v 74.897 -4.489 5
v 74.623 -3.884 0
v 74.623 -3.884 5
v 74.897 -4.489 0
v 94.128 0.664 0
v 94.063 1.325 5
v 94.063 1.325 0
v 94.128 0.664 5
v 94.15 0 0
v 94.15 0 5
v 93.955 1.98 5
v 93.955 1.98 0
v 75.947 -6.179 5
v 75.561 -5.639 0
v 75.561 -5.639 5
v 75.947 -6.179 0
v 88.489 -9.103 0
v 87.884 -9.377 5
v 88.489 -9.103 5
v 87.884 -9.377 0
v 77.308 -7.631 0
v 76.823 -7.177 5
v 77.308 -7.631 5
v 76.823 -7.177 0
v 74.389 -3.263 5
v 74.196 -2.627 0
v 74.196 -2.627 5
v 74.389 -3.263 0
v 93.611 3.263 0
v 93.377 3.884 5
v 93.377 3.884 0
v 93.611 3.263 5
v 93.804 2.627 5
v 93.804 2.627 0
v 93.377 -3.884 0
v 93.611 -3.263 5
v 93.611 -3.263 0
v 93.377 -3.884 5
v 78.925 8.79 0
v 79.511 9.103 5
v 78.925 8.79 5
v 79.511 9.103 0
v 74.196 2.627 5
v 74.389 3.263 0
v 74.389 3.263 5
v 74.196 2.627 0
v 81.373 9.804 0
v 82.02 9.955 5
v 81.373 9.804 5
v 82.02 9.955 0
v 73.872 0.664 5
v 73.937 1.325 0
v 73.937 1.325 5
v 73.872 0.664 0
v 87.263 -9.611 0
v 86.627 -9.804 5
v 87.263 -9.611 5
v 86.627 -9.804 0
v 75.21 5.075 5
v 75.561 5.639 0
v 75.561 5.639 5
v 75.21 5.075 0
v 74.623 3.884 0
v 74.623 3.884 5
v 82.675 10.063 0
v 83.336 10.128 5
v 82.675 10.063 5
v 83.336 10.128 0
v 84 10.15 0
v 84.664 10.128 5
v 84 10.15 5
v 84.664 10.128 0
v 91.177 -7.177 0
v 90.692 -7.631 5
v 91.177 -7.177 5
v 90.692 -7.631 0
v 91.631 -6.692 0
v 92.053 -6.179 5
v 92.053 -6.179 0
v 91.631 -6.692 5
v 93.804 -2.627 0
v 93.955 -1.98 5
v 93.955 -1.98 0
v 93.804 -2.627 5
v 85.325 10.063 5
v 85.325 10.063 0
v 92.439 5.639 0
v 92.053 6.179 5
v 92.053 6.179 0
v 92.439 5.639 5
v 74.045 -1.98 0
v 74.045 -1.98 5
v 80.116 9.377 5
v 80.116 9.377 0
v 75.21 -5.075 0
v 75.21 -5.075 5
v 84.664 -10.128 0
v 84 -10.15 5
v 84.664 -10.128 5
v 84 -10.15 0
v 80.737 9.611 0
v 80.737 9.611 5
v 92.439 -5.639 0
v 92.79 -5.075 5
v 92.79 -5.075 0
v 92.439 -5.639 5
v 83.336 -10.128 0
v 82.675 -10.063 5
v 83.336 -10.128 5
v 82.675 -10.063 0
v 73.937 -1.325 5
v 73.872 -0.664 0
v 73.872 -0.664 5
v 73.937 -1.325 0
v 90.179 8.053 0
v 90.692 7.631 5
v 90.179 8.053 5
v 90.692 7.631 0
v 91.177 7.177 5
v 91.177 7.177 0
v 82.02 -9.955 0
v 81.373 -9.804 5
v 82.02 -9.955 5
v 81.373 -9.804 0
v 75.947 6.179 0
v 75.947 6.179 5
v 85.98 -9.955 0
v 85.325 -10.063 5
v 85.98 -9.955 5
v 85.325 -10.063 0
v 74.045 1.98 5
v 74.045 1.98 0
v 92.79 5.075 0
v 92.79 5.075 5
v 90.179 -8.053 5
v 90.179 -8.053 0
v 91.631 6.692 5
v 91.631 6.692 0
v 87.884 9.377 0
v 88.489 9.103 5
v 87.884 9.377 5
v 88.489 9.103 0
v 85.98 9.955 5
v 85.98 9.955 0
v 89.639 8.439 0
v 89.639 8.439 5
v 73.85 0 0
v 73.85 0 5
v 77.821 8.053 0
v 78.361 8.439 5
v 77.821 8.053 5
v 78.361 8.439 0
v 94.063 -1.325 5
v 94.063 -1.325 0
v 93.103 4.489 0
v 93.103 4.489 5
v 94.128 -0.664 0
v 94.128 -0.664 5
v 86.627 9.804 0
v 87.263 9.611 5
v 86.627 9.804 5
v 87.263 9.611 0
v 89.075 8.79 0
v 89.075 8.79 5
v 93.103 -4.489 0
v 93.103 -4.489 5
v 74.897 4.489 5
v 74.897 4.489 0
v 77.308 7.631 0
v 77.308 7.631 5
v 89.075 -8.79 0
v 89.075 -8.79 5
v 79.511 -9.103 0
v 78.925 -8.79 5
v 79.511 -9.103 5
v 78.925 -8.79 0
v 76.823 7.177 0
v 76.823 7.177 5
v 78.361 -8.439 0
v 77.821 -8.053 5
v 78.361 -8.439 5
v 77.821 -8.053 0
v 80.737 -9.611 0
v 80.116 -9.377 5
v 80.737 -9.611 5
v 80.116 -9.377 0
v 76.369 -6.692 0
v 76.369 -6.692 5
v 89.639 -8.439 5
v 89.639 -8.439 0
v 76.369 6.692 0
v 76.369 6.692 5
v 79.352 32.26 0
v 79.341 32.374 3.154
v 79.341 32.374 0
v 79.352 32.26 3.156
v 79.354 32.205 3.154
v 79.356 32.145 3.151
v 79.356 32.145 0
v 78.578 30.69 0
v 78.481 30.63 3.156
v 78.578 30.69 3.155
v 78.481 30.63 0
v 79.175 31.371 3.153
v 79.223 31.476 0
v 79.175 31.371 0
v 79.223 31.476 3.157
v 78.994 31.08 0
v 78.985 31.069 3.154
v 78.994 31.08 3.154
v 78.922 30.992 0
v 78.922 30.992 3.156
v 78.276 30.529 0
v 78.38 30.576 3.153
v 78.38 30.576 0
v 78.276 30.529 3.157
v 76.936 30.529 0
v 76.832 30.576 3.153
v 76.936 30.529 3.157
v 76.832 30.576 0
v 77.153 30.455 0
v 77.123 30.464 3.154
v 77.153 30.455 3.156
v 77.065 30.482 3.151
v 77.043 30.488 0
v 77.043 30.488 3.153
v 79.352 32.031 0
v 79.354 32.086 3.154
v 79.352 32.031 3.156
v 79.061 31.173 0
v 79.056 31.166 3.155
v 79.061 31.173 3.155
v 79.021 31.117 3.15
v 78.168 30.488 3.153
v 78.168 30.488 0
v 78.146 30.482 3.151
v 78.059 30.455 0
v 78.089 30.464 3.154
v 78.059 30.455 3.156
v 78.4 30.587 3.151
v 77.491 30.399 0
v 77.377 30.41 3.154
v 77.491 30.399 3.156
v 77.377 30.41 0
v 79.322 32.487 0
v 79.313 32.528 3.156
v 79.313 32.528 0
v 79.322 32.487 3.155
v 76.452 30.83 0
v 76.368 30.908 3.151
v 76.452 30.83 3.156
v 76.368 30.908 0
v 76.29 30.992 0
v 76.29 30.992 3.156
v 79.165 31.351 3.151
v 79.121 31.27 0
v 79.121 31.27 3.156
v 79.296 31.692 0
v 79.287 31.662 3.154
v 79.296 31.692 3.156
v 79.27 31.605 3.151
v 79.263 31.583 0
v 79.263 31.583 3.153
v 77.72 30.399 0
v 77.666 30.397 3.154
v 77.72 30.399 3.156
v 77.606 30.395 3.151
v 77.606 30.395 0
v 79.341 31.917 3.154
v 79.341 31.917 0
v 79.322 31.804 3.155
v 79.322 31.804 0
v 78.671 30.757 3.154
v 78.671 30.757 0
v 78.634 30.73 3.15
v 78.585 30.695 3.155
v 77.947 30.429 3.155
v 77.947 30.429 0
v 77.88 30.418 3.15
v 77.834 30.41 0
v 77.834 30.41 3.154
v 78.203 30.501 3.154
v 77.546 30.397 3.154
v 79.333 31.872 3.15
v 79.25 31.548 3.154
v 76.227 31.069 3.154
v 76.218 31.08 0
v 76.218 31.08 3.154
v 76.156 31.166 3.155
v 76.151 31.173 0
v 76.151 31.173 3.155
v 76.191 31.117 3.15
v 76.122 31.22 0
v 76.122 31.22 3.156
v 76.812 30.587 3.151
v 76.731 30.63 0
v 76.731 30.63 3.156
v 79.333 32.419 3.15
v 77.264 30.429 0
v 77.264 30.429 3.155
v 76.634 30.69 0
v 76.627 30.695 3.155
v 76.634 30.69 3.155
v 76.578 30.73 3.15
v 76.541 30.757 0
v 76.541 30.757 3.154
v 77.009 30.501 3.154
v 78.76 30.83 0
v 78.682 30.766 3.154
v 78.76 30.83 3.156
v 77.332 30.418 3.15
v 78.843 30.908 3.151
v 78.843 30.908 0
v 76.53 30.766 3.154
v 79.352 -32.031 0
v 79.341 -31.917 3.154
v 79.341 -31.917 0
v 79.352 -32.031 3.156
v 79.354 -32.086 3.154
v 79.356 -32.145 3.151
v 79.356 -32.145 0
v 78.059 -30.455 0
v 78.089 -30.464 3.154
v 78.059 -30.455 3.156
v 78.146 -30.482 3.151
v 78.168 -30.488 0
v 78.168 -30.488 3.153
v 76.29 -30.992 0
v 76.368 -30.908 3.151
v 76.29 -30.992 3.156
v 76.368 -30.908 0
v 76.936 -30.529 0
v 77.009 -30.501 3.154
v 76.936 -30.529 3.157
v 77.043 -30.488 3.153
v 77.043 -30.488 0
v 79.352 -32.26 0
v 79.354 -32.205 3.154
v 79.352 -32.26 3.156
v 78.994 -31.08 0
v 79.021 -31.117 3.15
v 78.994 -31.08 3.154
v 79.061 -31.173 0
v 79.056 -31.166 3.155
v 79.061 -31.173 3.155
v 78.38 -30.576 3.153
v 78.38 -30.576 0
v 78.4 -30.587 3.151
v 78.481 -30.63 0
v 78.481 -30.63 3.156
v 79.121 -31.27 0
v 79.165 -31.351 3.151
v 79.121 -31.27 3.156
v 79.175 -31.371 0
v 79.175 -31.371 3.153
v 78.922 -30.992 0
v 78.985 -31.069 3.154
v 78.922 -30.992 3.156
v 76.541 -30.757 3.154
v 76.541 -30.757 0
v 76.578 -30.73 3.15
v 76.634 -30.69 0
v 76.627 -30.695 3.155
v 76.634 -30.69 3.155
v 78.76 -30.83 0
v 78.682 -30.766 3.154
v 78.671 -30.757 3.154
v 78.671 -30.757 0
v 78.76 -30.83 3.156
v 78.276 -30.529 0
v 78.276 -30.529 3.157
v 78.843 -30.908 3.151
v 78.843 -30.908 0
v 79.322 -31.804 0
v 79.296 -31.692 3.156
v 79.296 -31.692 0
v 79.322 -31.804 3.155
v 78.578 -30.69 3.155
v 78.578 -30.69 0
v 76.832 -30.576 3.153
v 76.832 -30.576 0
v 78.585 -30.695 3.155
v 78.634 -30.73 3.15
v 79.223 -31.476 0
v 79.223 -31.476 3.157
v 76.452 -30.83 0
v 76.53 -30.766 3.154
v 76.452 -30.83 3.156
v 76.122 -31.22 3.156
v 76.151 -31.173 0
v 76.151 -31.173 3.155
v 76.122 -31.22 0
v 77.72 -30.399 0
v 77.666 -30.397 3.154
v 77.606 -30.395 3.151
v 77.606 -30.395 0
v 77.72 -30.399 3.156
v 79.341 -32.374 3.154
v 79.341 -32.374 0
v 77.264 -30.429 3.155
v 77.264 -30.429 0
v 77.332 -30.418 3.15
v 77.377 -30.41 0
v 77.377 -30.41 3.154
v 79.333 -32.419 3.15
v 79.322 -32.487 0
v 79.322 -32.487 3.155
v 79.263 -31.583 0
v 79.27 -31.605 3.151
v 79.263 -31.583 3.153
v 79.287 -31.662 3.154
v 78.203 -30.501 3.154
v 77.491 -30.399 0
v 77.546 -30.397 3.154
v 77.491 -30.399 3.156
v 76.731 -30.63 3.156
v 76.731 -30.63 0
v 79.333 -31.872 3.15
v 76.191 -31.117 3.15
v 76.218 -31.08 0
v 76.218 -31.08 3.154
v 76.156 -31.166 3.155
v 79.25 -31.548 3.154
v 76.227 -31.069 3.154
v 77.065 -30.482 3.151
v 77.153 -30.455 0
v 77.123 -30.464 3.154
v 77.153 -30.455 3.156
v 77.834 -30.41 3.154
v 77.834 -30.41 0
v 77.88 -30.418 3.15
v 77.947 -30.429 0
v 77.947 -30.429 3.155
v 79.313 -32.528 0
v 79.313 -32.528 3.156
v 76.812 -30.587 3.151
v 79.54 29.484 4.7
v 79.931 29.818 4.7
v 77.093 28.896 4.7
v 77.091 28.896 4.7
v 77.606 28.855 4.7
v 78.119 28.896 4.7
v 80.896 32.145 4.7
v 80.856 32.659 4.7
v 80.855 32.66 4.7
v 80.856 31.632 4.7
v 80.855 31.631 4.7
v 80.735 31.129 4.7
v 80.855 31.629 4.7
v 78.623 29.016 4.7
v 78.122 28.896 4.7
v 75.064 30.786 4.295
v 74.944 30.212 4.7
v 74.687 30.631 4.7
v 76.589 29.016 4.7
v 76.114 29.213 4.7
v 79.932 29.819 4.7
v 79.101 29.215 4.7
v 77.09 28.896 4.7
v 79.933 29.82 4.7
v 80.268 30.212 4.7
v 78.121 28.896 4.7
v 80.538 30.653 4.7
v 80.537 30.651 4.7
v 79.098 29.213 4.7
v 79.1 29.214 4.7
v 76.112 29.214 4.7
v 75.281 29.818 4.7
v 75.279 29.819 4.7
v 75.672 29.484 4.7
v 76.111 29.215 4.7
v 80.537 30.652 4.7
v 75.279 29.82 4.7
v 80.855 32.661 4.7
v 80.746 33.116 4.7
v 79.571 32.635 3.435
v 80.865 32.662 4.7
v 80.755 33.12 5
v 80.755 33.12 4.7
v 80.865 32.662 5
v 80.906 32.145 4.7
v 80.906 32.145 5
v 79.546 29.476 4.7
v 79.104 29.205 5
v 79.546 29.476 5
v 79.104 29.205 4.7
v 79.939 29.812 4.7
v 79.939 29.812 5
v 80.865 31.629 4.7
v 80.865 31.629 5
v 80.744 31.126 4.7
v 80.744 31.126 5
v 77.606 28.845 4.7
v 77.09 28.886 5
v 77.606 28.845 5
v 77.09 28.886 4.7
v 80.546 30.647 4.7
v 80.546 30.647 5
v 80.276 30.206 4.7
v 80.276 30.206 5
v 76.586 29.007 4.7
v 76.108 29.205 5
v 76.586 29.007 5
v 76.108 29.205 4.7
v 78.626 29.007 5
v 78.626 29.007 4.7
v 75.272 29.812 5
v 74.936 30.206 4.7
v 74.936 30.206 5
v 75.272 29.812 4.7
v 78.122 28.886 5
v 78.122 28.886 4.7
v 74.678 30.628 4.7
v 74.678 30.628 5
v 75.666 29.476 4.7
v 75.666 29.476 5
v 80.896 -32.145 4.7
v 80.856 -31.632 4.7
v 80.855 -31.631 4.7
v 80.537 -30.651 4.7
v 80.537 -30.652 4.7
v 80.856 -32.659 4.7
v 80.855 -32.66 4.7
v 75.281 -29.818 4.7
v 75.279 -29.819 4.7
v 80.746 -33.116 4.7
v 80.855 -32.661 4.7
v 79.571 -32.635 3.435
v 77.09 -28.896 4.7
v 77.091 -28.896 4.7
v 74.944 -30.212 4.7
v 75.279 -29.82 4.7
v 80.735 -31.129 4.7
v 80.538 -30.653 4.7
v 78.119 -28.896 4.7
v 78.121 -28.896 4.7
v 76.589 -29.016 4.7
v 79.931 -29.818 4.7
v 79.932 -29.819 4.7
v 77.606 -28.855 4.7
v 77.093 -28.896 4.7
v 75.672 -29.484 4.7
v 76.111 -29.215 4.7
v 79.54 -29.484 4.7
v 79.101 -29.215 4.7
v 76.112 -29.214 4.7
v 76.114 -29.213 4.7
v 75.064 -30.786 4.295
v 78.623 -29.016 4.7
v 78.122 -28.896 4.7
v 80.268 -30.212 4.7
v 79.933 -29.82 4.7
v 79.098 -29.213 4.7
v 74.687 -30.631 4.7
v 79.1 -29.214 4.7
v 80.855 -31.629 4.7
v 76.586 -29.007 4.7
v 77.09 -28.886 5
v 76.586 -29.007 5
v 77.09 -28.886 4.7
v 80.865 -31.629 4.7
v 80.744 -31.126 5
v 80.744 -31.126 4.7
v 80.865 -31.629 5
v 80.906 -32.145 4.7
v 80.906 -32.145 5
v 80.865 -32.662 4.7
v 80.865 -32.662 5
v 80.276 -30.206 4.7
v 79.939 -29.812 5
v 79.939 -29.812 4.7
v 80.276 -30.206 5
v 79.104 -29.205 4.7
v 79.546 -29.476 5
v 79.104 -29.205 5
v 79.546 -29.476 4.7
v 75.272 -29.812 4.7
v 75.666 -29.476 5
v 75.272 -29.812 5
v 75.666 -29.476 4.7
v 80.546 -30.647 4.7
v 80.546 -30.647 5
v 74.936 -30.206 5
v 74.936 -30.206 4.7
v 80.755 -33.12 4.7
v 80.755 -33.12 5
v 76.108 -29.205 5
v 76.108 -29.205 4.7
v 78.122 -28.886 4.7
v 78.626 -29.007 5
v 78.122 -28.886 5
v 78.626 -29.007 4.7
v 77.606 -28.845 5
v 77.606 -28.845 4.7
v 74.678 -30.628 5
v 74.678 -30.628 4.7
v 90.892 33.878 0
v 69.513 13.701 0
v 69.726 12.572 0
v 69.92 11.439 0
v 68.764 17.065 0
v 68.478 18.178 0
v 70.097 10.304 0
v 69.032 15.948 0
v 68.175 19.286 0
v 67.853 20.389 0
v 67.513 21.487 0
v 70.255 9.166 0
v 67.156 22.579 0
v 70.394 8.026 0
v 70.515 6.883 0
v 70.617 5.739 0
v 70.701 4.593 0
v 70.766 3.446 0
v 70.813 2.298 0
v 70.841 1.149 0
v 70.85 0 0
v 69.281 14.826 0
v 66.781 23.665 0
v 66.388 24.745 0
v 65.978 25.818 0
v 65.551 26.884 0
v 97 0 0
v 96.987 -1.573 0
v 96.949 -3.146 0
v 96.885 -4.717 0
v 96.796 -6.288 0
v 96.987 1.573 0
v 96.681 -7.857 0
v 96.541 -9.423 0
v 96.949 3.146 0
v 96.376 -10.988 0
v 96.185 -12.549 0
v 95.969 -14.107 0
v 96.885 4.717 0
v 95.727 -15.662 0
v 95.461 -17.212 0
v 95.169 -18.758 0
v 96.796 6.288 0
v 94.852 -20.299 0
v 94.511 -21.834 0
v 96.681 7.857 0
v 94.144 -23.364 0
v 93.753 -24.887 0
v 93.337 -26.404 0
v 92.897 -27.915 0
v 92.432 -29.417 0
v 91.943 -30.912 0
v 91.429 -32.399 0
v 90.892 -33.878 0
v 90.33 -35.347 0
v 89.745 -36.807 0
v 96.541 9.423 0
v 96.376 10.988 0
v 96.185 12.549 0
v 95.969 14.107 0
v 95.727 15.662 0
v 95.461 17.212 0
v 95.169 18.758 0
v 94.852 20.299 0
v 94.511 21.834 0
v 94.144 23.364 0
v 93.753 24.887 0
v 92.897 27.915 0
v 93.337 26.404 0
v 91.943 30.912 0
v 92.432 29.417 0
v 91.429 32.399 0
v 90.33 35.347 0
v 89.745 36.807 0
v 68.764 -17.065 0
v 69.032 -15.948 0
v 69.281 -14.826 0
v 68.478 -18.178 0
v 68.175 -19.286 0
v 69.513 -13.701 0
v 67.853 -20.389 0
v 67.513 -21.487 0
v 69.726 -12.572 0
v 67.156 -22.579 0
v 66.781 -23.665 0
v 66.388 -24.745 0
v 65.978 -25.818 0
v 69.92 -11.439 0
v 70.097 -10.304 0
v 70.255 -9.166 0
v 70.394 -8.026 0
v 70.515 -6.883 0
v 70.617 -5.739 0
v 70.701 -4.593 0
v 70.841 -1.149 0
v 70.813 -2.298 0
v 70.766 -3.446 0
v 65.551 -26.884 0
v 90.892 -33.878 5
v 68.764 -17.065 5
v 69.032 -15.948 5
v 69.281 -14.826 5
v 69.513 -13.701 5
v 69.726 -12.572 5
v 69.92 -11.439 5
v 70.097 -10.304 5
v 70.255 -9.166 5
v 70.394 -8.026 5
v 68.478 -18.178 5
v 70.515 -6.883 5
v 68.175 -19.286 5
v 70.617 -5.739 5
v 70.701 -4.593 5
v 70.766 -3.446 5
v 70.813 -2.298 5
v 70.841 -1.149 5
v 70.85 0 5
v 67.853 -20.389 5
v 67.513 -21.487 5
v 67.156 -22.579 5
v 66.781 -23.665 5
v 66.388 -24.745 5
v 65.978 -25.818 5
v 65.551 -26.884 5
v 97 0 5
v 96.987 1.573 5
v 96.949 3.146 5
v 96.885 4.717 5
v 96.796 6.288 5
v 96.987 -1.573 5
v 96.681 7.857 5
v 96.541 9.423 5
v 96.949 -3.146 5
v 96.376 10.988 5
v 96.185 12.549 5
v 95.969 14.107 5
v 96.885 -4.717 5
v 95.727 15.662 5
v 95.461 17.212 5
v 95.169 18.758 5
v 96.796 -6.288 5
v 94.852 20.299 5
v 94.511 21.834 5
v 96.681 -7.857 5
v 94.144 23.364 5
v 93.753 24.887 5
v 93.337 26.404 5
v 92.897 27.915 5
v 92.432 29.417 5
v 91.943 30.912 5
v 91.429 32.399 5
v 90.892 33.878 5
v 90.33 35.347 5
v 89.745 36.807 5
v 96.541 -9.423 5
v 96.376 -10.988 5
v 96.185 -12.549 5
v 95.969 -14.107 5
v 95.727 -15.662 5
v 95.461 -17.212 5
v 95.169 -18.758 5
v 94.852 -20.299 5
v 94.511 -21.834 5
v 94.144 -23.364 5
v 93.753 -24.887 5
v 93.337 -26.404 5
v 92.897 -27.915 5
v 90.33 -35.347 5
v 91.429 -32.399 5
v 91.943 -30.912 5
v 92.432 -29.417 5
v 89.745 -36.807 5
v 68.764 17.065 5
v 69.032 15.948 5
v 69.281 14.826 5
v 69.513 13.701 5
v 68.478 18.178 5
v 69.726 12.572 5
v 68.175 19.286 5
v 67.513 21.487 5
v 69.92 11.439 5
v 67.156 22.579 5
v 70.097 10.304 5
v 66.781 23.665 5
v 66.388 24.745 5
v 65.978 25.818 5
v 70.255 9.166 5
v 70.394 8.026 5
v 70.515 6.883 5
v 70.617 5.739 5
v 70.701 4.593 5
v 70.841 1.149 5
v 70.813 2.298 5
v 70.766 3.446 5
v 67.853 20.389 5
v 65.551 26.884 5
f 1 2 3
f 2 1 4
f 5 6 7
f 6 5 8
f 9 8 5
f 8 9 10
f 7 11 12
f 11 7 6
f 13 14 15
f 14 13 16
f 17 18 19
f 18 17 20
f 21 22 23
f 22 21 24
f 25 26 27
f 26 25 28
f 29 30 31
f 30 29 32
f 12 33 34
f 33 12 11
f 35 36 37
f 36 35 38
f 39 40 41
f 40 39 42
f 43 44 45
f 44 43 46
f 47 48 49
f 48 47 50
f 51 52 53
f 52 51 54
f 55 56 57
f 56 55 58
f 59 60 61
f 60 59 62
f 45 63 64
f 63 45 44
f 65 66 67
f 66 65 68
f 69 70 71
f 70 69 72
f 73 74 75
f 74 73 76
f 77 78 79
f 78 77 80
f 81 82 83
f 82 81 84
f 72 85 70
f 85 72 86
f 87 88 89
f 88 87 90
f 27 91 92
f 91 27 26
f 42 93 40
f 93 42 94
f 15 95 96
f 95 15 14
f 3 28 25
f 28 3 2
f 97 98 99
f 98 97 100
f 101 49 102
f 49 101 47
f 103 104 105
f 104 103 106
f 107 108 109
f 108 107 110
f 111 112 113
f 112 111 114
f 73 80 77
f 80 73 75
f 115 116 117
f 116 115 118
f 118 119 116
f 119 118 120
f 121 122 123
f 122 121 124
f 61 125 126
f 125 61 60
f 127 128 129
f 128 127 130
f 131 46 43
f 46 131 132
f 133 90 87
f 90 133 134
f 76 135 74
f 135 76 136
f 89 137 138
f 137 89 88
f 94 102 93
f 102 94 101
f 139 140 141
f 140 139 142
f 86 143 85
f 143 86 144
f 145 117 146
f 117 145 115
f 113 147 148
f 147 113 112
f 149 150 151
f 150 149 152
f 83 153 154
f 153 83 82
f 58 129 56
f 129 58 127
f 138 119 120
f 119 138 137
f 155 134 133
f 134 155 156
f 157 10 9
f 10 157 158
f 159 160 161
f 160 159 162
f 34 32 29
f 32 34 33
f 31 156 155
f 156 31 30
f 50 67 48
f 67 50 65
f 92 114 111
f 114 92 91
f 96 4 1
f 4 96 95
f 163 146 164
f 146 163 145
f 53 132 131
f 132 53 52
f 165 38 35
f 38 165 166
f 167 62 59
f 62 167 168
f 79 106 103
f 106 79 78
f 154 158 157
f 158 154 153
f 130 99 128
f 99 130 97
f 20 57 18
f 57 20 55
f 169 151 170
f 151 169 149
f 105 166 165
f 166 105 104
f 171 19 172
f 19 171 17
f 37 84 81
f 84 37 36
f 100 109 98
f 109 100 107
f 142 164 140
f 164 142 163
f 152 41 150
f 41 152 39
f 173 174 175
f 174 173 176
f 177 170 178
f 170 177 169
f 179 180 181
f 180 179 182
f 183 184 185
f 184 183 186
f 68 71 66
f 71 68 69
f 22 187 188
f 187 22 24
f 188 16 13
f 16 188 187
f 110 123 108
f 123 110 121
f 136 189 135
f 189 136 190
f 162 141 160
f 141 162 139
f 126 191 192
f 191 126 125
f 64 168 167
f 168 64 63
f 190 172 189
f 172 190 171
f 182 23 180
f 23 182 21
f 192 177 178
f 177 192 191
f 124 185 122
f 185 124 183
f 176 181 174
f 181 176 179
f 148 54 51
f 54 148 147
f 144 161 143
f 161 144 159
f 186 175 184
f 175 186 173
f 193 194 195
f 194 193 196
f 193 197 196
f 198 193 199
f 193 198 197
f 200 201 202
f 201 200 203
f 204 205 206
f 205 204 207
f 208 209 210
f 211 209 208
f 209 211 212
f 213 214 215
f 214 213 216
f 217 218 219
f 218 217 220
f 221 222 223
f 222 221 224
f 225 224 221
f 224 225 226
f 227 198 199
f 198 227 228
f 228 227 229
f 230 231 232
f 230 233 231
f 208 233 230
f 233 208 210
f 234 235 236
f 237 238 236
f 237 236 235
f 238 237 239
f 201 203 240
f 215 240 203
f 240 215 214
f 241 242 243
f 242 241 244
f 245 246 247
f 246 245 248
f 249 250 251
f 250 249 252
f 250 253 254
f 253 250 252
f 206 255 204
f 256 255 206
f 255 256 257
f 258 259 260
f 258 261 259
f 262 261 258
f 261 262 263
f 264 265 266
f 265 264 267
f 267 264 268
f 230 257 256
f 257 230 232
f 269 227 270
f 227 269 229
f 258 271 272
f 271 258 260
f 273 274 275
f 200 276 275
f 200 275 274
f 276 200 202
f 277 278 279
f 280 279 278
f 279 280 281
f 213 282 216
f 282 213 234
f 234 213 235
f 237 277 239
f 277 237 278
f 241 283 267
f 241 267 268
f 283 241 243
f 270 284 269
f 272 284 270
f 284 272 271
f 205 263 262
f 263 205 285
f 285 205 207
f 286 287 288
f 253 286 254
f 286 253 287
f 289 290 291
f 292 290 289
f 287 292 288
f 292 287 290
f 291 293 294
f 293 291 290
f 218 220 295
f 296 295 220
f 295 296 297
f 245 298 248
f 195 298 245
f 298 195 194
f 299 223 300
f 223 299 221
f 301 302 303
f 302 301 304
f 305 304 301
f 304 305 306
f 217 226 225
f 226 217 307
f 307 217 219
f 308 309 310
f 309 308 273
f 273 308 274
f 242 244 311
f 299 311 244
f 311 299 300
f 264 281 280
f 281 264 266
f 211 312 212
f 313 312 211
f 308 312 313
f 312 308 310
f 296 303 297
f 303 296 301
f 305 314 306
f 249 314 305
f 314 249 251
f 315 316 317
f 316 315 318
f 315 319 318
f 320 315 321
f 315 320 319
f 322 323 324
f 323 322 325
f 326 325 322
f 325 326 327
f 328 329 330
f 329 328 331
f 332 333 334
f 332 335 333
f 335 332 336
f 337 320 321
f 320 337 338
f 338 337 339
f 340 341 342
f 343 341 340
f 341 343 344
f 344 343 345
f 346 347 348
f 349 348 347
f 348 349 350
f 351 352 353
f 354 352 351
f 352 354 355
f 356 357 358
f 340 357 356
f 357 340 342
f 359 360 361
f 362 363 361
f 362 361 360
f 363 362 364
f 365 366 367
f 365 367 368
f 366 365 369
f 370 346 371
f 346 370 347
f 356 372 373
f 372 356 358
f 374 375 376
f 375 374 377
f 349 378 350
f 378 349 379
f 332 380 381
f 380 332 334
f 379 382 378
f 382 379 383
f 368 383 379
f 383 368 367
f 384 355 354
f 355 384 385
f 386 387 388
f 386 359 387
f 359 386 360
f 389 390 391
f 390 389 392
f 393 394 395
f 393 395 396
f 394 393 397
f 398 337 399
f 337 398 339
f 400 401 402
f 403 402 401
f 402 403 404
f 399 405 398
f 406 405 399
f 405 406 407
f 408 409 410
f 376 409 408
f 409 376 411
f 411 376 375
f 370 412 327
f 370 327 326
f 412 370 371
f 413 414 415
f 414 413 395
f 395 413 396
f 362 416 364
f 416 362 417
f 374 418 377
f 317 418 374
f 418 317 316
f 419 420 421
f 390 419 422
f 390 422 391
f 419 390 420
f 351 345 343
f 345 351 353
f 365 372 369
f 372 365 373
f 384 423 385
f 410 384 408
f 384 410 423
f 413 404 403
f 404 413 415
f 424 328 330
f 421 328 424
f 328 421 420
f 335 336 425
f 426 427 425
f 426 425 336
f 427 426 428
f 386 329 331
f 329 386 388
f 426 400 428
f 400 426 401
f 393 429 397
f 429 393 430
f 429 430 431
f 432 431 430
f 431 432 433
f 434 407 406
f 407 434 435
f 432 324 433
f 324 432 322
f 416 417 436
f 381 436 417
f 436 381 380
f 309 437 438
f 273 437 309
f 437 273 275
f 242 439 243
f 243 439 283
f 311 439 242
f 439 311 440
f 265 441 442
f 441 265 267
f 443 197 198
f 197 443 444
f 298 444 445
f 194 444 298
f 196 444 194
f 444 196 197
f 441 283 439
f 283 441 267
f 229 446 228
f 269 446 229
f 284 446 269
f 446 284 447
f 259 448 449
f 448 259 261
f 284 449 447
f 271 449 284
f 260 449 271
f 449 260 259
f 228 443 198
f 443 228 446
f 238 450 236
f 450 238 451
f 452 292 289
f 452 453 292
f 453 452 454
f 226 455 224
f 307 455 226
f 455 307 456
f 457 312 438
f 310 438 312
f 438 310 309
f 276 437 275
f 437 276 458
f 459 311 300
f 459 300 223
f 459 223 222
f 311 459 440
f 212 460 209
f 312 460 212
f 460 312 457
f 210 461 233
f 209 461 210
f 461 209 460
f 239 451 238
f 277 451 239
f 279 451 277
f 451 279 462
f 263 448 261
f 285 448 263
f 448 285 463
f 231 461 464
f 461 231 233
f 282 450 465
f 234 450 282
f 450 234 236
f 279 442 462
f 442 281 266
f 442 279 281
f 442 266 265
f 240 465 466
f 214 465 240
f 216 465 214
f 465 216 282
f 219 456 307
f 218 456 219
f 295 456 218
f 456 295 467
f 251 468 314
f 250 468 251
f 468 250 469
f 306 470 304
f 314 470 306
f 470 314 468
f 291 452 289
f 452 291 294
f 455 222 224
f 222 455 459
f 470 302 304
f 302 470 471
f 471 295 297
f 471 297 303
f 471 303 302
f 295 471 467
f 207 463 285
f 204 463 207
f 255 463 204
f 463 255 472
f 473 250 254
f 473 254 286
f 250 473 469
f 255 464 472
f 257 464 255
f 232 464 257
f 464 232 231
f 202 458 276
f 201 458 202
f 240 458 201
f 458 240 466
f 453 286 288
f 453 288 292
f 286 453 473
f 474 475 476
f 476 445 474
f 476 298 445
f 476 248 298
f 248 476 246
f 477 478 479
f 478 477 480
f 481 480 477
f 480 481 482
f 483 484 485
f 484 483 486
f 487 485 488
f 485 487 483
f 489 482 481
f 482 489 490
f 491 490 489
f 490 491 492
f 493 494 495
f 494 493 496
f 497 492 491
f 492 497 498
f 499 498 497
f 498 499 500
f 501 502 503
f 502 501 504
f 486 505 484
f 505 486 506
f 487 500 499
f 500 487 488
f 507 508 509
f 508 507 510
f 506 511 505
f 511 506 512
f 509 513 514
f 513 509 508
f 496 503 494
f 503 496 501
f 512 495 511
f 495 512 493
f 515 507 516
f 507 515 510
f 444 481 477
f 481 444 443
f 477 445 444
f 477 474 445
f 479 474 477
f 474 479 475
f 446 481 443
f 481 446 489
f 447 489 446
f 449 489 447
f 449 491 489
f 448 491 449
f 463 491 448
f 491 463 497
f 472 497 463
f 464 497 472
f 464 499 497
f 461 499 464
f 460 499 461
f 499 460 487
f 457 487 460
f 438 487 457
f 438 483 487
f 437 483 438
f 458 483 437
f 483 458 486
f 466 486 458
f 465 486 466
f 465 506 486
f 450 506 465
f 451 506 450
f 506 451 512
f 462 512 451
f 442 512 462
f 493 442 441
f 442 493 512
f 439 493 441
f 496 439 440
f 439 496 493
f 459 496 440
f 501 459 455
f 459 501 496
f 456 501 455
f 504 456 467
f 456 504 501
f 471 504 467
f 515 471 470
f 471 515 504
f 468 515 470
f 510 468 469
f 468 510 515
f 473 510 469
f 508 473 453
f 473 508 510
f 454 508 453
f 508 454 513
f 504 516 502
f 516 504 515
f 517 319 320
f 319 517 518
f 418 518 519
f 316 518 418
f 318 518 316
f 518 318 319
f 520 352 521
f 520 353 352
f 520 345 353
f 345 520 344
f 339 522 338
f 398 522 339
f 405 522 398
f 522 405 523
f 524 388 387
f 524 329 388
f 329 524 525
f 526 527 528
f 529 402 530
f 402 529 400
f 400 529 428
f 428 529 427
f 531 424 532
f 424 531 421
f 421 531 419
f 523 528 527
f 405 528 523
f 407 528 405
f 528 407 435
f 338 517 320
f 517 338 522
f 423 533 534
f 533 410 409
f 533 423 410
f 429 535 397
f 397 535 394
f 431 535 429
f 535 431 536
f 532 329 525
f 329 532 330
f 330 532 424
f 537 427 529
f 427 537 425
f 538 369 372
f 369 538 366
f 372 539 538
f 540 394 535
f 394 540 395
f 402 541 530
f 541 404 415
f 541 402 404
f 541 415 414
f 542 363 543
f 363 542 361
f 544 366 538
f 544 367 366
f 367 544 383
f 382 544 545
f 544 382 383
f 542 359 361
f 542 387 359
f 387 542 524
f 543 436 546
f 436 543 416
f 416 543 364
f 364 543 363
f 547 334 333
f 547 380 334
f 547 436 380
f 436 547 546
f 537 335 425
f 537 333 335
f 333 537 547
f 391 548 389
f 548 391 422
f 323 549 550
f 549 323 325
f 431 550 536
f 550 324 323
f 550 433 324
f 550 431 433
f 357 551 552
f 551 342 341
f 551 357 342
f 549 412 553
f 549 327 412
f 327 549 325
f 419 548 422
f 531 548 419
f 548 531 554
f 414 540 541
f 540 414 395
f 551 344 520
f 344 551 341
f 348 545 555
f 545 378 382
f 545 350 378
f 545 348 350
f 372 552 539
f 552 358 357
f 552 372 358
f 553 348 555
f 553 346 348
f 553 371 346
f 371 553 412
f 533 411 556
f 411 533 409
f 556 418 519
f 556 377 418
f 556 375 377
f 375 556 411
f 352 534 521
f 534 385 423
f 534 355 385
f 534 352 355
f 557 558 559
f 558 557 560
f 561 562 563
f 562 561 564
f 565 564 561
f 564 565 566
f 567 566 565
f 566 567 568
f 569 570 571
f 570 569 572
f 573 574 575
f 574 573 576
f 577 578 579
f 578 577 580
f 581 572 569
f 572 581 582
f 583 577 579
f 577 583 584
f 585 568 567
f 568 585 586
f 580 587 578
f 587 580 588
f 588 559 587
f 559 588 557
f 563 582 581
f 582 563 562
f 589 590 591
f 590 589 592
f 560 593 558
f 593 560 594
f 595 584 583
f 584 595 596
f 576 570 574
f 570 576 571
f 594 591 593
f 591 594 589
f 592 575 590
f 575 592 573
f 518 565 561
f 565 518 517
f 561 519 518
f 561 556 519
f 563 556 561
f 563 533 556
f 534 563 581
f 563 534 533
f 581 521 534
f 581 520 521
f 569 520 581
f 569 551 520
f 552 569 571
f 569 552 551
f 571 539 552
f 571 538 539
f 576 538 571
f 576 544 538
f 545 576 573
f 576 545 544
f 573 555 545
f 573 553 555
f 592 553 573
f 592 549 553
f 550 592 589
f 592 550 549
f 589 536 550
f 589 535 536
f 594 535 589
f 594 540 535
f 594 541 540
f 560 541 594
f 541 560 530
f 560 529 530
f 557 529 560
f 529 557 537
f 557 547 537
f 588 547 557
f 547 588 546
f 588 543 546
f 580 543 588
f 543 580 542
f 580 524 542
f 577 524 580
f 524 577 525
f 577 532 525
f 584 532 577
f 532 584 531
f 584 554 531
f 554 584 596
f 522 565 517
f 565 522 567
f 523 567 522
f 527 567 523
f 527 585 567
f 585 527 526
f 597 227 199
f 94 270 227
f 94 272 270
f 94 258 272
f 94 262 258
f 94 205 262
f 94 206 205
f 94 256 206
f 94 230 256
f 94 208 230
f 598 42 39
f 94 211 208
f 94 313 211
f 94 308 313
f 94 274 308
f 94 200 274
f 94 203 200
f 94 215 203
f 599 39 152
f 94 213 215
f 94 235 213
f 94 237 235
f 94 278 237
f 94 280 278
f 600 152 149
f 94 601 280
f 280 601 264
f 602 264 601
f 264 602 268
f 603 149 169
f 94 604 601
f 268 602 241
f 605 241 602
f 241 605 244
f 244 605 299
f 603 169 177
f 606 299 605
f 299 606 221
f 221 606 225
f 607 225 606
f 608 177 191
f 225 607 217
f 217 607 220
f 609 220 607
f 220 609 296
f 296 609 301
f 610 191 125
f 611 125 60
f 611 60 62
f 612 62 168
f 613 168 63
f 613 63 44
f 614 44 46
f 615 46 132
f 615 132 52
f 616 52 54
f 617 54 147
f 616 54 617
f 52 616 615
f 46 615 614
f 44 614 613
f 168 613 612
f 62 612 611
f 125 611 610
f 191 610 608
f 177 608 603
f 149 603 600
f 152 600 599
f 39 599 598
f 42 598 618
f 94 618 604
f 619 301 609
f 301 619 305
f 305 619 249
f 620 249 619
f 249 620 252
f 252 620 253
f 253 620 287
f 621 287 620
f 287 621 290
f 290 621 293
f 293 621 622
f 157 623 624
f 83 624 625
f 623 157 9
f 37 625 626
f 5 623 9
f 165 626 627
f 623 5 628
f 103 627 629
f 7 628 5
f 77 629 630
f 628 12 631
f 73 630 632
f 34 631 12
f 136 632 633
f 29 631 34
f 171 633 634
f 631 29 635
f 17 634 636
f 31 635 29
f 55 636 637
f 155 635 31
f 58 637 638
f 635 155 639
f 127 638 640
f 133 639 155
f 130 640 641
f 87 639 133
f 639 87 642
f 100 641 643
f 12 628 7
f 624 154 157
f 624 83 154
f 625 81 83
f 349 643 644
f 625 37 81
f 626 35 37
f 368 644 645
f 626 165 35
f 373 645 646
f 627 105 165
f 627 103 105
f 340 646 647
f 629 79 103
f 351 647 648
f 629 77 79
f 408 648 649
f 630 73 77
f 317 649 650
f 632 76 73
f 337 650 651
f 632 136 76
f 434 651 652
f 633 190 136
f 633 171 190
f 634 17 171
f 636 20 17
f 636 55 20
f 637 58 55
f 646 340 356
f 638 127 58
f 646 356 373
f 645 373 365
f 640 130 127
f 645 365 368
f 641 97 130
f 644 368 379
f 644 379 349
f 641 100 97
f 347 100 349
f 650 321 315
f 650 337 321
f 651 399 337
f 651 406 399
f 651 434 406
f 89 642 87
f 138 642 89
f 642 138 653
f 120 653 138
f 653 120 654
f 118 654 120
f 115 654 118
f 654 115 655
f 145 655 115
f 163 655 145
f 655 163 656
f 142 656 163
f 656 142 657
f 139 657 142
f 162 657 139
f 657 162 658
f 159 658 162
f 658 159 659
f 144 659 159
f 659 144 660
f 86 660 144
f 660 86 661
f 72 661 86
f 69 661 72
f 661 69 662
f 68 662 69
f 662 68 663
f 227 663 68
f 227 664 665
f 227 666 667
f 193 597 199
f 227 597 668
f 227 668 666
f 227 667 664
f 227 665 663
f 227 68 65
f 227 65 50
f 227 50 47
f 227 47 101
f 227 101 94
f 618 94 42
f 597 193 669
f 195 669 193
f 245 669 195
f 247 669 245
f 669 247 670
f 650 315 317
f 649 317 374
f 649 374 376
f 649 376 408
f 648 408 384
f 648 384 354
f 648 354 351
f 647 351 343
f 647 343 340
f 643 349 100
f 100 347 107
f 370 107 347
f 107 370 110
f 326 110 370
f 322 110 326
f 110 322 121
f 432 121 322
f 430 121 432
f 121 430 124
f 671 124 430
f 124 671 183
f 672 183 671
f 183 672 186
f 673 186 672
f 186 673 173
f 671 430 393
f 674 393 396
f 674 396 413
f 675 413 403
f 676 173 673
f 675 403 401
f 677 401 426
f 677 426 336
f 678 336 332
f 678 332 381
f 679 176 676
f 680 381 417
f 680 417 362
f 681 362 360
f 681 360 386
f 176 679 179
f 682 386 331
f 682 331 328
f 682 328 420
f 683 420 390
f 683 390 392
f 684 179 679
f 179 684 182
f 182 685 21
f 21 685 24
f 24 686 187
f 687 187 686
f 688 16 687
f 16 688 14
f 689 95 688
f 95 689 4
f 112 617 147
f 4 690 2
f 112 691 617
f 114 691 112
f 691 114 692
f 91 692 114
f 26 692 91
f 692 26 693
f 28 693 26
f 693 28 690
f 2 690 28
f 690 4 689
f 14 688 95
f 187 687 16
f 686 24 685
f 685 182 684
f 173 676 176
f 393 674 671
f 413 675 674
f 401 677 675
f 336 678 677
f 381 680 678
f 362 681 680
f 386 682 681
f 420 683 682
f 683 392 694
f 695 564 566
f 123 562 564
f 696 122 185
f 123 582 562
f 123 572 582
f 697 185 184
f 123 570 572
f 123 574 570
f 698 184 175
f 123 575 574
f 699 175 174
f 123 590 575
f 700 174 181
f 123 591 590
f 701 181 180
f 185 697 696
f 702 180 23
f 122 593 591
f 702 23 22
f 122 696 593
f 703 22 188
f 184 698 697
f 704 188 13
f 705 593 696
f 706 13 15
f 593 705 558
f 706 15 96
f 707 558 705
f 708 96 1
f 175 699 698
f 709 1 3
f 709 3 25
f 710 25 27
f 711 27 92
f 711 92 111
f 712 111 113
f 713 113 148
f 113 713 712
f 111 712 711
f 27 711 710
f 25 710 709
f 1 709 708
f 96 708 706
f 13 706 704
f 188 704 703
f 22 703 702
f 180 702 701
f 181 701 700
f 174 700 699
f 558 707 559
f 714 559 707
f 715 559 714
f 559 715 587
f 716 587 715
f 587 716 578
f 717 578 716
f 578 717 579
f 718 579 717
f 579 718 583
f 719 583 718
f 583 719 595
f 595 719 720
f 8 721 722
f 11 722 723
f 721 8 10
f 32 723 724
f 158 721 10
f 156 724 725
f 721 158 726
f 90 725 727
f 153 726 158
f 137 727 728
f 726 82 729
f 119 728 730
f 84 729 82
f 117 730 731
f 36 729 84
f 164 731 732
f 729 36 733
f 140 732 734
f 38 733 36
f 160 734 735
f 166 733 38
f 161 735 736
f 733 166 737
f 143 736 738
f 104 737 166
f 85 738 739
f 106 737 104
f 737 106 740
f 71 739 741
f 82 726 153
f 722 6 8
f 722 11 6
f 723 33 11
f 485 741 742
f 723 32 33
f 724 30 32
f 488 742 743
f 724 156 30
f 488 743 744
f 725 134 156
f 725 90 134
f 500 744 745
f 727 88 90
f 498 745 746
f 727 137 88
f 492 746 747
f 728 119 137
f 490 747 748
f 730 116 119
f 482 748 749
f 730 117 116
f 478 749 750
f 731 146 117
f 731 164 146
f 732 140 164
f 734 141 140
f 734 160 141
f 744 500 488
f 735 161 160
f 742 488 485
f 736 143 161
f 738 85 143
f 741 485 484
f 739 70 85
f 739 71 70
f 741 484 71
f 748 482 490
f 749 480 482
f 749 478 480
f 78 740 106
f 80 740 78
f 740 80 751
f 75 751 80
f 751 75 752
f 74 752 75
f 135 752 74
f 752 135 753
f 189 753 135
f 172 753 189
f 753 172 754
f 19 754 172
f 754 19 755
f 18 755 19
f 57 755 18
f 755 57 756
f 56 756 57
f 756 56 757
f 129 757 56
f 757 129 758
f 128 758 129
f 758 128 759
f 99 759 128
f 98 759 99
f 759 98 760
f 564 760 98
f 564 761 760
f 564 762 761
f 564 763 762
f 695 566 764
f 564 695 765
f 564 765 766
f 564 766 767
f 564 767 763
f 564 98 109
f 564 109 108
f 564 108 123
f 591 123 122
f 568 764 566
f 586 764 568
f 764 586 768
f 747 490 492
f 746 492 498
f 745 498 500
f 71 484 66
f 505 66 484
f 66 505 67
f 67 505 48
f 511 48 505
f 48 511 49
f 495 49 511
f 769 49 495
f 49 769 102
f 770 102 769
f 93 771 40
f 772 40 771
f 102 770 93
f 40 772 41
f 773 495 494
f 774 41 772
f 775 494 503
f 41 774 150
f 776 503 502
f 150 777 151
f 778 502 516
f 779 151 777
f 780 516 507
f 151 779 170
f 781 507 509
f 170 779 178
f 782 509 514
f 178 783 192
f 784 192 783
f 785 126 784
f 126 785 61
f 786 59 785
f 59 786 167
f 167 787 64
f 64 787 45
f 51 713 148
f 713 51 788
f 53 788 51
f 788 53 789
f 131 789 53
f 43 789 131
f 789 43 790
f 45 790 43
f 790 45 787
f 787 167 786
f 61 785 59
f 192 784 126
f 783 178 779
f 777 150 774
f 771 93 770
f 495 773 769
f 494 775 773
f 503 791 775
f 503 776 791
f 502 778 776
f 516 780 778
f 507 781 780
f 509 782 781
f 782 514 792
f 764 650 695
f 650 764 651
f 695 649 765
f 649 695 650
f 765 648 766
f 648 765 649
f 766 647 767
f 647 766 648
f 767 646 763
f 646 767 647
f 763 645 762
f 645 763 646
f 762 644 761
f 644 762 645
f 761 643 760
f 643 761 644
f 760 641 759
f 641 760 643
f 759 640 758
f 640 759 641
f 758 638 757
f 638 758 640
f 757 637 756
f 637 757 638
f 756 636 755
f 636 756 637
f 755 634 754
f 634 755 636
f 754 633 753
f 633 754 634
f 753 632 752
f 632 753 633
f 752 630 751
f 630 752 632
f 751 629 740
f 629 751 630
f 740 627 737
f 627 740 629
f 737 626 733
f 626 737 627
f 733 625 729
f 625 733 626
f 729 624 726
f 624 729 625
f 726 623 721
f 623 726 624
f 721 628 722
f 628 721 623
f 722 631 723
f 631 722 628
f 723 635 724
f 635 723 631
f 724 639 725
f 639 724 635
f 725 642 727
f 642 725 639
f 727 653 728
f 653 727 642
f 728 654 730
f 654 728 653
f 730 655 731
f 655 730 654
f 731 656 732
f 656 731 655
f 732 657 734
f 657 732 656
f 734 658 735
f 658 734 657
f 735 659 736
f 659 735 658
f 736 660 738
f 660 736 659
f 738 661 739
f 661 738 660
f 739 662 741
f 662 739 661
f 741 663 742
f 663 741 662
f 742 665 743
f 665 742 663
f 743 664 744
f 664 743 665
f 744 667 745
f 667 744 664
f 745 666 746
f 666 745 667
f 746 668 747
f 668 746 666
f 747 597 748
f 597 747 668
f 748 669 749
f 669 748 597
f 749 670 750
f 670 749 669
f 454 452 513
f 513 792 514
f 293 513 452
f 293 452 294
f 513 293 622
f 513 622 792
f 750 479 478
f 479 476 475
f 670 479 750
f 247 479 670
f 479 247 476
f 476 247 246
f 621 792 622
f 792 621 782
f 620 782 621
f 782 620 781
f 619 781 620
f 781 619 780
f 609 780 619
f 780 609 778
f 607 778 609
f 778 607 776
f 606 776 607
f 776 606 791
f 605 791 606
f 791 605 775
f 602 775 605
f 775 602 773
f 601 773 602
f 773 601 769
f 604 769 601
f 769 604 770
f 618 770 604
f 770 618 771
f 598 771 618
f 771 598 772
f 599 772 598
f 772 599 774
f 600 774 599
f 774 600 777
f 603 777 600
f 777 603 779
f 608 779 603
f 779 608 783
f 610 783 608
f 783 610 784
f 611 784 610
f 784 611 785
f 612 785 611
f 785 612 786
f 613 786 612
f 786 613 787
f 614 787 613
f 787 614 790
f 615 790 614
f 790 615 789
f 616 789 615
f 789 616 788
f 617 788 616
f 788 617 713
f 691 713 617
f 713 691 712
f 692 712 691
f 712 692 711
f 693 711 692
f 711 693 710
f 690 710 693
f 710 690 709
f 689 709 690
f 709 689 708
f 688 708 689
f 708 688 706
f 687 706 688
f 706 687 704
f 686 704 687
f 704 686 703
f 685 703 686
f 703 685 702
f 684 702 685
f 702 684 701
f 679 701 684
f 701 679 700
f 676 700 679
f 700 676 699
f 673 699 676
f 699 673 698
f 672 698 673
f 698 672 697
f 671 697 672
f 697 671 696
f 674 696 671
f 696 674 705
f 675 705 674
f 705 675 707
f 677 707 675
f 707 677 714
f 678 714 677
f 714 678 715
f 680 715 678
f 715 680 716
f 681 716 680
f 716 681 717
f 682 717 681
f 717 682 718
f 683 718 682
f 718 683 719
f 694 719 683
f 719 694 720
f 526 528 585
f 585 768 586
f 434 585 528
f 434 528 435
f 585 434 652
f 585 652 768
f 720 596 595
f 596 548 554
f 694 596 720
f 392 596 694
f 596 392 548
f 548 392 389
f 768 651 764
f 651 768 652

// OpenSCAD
// file: parameters.scad
// =============================================================================
// Gen-CA — nightly 2026-10-13 (physics_scorer, honest magpylib watts)
// Break the plate limit instead of the physics: the 2026-10-11 scans showed watts keep rising with machine size, but Ø194 was the largest one-piece stator/rotor set that fits one 410 mm plate. Gen-CA makes the steel disc the structural rotor and prints the magnet carrier as 8 bolt-on arcs per rotor plus a separate D-flat hub, opens the stator centre, and prints the 12 bobbin bases in place inside their stator bays, so a much bigger R84 / Ø226 machine (bobbins r64–104, 4.95 mm copper, 7.55 mm magnet gap) still packs on ONE plate.
// Clocking 0 deg (magnets N facing S) + D-flat keyed bore + index notch + flip-symmetric hole map.
// Windable 2-piece bobbin; turns = physics_scorer turns_fit; copper only between flanges.
// Steel back-iron: 2× Ø194 × 4.76 mm (3/16") mild-steel discs (steel_backiron_disc.dxf); magnets sit ON the steel
// (through-pockets) -> score with --back-iron. Night 2026-10-13.
// =============================================================================
topology            = "dual_rotor";

// --- Wire / winding (physics_scorer winding-fit) -------------------------------
wire_awg            = 26;
wire_od             = 0.45;     // insulated OD mm (bare 0.405)
fill_realistic      = 0.65;     // insulated-wire area / window (DENSE layered wind with a jig; scorer cap 0.65)
turns               = 366;       // = physics_scorer turns_fit (do NOT raise)
coil_former_type    = "bobbin";
coil_core_inset     = 18.10;     // radial copper build: hub = copper boundary inset by this
wind_build_axial    = 0.0;      // nothing proud of the flanges
wind_build_radial   = 0.0;

// --- Bobbin (base + lid) ---------------------------------------------------------
coil_id_r           = 64.00;    // copper boundary sector
coil_od_r           = 104.00;
span_deg            = 26.87;    // = pitch - 2*asin((wall+0.85)/coil_id_r) -> >=1.2 mm stator web
former_web          = 4.95;     // copper height between flanges (TALL copper: steel keeps Bz up)
flange_t            = 0.80;     // >= 0.8 mm FDM wall rule (tall winds push on the flanges)
wall                = 0.80;     // flange lip beyond copper
former_bare_h       = former_web + 2 * flange_t;
coil_envelope_h     = former_bare_h + 2 * wind_build_axial;
tab_w               = 7.0;
tab_len             = 7.0;
tab_h               = former_bare_h / 2;
pin_d               = 1.9;      // 1.75 mm filament locating pin
coil_mount_r        = coil_od_r + 0.2 + 4.0;
lead_y              = 1.6;
lead_slot_w         = 0.9;
lead_groove_d       = 0.6;

// --- Gap -------------------------------------------------------------------------
run_clear           = 0.50;     // rotor face -> flange
gap_spacer_h        = run_clear + wind_build_axial;
m2m                 = coil_envelope_h + 2 * run_clear;   // rotor face to rotor face (= gap_sleeve length)

// --- Stator ----------------------------------------------------------------------
coil_stations       = 12;
bay_clear           = 0.35;     // 0.35 mm: bobbin BASES print IN PLACE inside the stator bays (print-in-place gap), then pop out
stator_thick        = former_bare_h;                        // bobbins flush both faces
stator_od           = 226;
shaft_clear_stator  = 14.0;     // stator is static; gap sleeve OD 12 spins inside
stator_ir           = 58.85;    // ANNULAR stator: open centre (nested one-plate pack); inner rim 4.0 mm

// --- Rotor(s) --------------------------------------------------------------------
magnet_Br           = 1.43;     // N52
magnet_d_large      = 20.0;
magnet_h_large      = 5.0;      // one O20x5 per pocket
magnet_h_small      = 5.0;      // unused: no O5 pockets in this kit
halbach_magnetisation = "none";  // NO O5 assist magnets in this kit (scan: they lower the 4-pole score)
rotor_b_same_axis   = true;     // same-index magnets share one axis: N faces S across the gap
large_pocket_d      = 20.3;
small_pocket_d      = 5.3;
pocket_h            = 5.00;     // THROUGH the carrier: magnet back face sits on the steel disc (FLUSH seat: carrier = magnet height, magnet face level with the rotor face)
large_n             = 8;
R_large             = 84.0;
small_r_list        = [];       // no O5 pockets
carrier_od          = 194.0;
ring_ir             = 70.85;    // RING rotor: PLA magnet ring r ring_ir..carrier_od/2 (steel disc = structural rotor)
hub_flange_od       = 74.0;     // separate rotor_hub flange (inside the ring, flush with the ring face)
csk_d               = 6.6;      // M3 countersunk head pocket (ISO 10642 head 6.0 nominal) on the stator face
csk_depth           = 1.55;     // = (csk_d - m3_clear) / 2: 90 deg cone; head sits 0.3 mm below the face
n_seg               = 8;        // magnet-carrier ARCS per rotor (segmented carrier)
seg_deg             = 360 / n_seg;
seg_start           = -22.5;   // arc edge angle (between pocket 0 and its clamp bolt)
seg_kerf_deg        = 0.4;      // gap between neighbouring arcs on the steel
carrier_thick       = pocket_h;
hub_h               = 12.0;     // > steel_t + insert: radial set-screw clears the steel
hub_od              = 24.0;     // slim hub so the M4 brace rods fit at R~18 inside the coil ring
hub_insert_d        = 4.0;      // M3 heat-set insert, radial, bears on the D-flat
rotor_b_offset_deg  = 0.0;      // CLOCKING: magnets directly opposite
shaft_key           = "dflat";
dflat_depth         = 0.5;      // 8 mm shaft with 0.5 mm flat (7.5 across flat)
index_notch_d       = 3.0;

// --- Steel back-iron (buyable laser-cut) -------------------------------------------
steel_t             = 4.76;      // mild steel thickness (image method ignores it; sized from steel_flux.py so the return path stays well below saturation)
steel_center_hole   = 26.0;     // slips over the rotor hub (OD 24)
steel_od            = carrier_od;   // steel disc OD = rotor carrier OD

// --- Modular MAX interface ----------------------------------------------------------
shaft_bore          = 8.35;
dflat_x             = 4.0 - dflat_depth + (shaft_bore - 8.0) / 2;
bearing_d           = 21.85;
bearing_h           = 7.2;
m3_clear            = 3.5;
bolt_r_inner        = 30.0;     // M3 steel-disc clamp bolts (inside the magnet ring)
bolt_n_inner        = 4;
bolt_inner_angles   = [0, 90, 180, 270];
bolt_r_outer        = 84.0;     // second M3 steel-disc clamp ring
bolt_outer_angles   = [22.5, 67.5, 112.5, 157.5, 202.5, 247.5, 292.5, 337.5];
flange_bolt_r       = 107.5;     // frame rods: OUTSIDE the rotor OD (rotors spin inside them)
flange_bolt_n       = 4;
flange_bolt_offset  = 45.00;    // between coil stations -> never cuts a lead groove/tab
brace_r             = 18.0;
brace_d             = 4.3;      // temporary M4 jack rods (assembly only)
brace_n             = 4;
brace_angles        = [45, 135, 225, 315];          // flip-symmetric

spacer_pad_od       = 14.0;
spacer_pad_id       = m3_clear;
endbell_od          = 225.0;
endbell_thick       = 8.0;
endbell_shaft_clear = 10.0;
collar_h            = 10.0;
standoff_od         = 9.0;
frame_standoff_h    = run_clear + carrier_thick + hub_h + collar_h + 2.0;
sleeve_od           = 12.0;
plate_max_mm        = 410;

$fn = 64;
// main file
// Gen-CA — rotor A MAGNET-CARRIER ARC (2026-10-13 segmented nested pack). Print x8 per rotor (16 total
// for A+B; A and B arcs are the same print). Each arc covers seg_deg = 360/n_seg of the R_large ring and holds 1 O20 through-pockets
// + 1 countersunk M3 clamp holes (inter-pole, R bolt_r_outer) to the steel disc. The 4.76 mm mild-steel disc is the structural
// rotor; the separate rotor_hub (D-flat) bolts to it at R bolt_r_inner. Arcs pack around/inside the other parts on ONE plate,
// and any arc can be swapped/re-printed on its own (modular magnet carrier).
// CLOCKING: arc j spans [j*seg_deg + seg_start, (j+1)*seg_deg + seg_start - kerf]; pockets at i*360/large_n + rotor_b_offset_deg (= 0).
// The arc's bolt holes sit on the same 8-fold map as the pockets, so every arc position puts pockets on the same steel angles;
// pocket 0 = the pocket over the STEEL index notch (clocked to the hub D-flat). Rotor B arcs = same print, flipped to face A.
// Print countersinks UP (stator face up); the arc lies flat (5 mm), no supports.
include <parameters.scad>;
$fn = 96;
module ring_holes_2d() {
    for (a = bolt_outer_angles) translate([bolt_r_outer*cos(a), bolt_r_outer*sin(a)]) circle(d=m3_clear);
    translate([carrier_od/2, 0]) circle(d=index_notch_d, $fn=24);
}
module hub_holes_2d() {
    for (a = bolt_inner_angles) translate([bolt_r_inner*cos(a), bolt_r_inner*sin(a)]) circle(d=m3_clear);
    for (a = brace_angles) translate([brace_r*cos(a), brace_r*sin(a)]) circle(d=brace_d);
    translate([hub_flange_od/2, 0]) circle(d=index_notch_d, $fn=24);
}
module csk(r, angles) {   // M3 countersunk (ISO 10642, 90 deg) head pocket on the STATOR face, head 0.3 mm below the face
    for (a = angles) translate([r*cos(a), r*sin(a), 0]) {
        translate([0, 0, carrier_thick - 0.3 - csk_depth - 0.2]) cylinder(d1=m3_clear - 0.4, d2=csk_d, h=csk_depth + 0.2 + 0.01, $fn=40);
        translate([0, 0, carrier_thick - 0.3]) cylinder(d=csk_d, h=0.4, $fn=40);
    }
}

off = 0;
module arc_2d() {
    a0 = seg_start + seg_kerf_deg / 2; a1 = seg_start + seg_deg - seg_kerf_deg / 2;
    polygon(concat(
        [for (k = [0 : 48]) let(t = a0 + (a1 - a0) * k / 48) [(carrier_od/2) * cos(t), (carrier_od/2) * sin(t)]],
        [for (k = [48 : -1 : 0]) let(t = a0 + (a1 - a0) * k / 48) [ring_ir * cos(t), ring_ir * sin(t)]]));
}
difference() {
    linear_extrude(carrier_thick) arc_2d();
    for (i = [0 : large_n-1]) {
        a = i * 360 / large_n + off;
        translate([R_large*cos(a), R_large*sin(a), -0.1]) cylinder(d=large_pocket_d, h=carrier_thick + 0.2);
    }
    for (a = bolt_outer_angles) translate([bolt_r_outer*cos(a), bolt_r_outer*sin(a), -0.1]) cylinder(d=m3_clear, h=carrier_thick + 0.2);
    csk(bolt_r_outer, bolt_outer_angles);
}
